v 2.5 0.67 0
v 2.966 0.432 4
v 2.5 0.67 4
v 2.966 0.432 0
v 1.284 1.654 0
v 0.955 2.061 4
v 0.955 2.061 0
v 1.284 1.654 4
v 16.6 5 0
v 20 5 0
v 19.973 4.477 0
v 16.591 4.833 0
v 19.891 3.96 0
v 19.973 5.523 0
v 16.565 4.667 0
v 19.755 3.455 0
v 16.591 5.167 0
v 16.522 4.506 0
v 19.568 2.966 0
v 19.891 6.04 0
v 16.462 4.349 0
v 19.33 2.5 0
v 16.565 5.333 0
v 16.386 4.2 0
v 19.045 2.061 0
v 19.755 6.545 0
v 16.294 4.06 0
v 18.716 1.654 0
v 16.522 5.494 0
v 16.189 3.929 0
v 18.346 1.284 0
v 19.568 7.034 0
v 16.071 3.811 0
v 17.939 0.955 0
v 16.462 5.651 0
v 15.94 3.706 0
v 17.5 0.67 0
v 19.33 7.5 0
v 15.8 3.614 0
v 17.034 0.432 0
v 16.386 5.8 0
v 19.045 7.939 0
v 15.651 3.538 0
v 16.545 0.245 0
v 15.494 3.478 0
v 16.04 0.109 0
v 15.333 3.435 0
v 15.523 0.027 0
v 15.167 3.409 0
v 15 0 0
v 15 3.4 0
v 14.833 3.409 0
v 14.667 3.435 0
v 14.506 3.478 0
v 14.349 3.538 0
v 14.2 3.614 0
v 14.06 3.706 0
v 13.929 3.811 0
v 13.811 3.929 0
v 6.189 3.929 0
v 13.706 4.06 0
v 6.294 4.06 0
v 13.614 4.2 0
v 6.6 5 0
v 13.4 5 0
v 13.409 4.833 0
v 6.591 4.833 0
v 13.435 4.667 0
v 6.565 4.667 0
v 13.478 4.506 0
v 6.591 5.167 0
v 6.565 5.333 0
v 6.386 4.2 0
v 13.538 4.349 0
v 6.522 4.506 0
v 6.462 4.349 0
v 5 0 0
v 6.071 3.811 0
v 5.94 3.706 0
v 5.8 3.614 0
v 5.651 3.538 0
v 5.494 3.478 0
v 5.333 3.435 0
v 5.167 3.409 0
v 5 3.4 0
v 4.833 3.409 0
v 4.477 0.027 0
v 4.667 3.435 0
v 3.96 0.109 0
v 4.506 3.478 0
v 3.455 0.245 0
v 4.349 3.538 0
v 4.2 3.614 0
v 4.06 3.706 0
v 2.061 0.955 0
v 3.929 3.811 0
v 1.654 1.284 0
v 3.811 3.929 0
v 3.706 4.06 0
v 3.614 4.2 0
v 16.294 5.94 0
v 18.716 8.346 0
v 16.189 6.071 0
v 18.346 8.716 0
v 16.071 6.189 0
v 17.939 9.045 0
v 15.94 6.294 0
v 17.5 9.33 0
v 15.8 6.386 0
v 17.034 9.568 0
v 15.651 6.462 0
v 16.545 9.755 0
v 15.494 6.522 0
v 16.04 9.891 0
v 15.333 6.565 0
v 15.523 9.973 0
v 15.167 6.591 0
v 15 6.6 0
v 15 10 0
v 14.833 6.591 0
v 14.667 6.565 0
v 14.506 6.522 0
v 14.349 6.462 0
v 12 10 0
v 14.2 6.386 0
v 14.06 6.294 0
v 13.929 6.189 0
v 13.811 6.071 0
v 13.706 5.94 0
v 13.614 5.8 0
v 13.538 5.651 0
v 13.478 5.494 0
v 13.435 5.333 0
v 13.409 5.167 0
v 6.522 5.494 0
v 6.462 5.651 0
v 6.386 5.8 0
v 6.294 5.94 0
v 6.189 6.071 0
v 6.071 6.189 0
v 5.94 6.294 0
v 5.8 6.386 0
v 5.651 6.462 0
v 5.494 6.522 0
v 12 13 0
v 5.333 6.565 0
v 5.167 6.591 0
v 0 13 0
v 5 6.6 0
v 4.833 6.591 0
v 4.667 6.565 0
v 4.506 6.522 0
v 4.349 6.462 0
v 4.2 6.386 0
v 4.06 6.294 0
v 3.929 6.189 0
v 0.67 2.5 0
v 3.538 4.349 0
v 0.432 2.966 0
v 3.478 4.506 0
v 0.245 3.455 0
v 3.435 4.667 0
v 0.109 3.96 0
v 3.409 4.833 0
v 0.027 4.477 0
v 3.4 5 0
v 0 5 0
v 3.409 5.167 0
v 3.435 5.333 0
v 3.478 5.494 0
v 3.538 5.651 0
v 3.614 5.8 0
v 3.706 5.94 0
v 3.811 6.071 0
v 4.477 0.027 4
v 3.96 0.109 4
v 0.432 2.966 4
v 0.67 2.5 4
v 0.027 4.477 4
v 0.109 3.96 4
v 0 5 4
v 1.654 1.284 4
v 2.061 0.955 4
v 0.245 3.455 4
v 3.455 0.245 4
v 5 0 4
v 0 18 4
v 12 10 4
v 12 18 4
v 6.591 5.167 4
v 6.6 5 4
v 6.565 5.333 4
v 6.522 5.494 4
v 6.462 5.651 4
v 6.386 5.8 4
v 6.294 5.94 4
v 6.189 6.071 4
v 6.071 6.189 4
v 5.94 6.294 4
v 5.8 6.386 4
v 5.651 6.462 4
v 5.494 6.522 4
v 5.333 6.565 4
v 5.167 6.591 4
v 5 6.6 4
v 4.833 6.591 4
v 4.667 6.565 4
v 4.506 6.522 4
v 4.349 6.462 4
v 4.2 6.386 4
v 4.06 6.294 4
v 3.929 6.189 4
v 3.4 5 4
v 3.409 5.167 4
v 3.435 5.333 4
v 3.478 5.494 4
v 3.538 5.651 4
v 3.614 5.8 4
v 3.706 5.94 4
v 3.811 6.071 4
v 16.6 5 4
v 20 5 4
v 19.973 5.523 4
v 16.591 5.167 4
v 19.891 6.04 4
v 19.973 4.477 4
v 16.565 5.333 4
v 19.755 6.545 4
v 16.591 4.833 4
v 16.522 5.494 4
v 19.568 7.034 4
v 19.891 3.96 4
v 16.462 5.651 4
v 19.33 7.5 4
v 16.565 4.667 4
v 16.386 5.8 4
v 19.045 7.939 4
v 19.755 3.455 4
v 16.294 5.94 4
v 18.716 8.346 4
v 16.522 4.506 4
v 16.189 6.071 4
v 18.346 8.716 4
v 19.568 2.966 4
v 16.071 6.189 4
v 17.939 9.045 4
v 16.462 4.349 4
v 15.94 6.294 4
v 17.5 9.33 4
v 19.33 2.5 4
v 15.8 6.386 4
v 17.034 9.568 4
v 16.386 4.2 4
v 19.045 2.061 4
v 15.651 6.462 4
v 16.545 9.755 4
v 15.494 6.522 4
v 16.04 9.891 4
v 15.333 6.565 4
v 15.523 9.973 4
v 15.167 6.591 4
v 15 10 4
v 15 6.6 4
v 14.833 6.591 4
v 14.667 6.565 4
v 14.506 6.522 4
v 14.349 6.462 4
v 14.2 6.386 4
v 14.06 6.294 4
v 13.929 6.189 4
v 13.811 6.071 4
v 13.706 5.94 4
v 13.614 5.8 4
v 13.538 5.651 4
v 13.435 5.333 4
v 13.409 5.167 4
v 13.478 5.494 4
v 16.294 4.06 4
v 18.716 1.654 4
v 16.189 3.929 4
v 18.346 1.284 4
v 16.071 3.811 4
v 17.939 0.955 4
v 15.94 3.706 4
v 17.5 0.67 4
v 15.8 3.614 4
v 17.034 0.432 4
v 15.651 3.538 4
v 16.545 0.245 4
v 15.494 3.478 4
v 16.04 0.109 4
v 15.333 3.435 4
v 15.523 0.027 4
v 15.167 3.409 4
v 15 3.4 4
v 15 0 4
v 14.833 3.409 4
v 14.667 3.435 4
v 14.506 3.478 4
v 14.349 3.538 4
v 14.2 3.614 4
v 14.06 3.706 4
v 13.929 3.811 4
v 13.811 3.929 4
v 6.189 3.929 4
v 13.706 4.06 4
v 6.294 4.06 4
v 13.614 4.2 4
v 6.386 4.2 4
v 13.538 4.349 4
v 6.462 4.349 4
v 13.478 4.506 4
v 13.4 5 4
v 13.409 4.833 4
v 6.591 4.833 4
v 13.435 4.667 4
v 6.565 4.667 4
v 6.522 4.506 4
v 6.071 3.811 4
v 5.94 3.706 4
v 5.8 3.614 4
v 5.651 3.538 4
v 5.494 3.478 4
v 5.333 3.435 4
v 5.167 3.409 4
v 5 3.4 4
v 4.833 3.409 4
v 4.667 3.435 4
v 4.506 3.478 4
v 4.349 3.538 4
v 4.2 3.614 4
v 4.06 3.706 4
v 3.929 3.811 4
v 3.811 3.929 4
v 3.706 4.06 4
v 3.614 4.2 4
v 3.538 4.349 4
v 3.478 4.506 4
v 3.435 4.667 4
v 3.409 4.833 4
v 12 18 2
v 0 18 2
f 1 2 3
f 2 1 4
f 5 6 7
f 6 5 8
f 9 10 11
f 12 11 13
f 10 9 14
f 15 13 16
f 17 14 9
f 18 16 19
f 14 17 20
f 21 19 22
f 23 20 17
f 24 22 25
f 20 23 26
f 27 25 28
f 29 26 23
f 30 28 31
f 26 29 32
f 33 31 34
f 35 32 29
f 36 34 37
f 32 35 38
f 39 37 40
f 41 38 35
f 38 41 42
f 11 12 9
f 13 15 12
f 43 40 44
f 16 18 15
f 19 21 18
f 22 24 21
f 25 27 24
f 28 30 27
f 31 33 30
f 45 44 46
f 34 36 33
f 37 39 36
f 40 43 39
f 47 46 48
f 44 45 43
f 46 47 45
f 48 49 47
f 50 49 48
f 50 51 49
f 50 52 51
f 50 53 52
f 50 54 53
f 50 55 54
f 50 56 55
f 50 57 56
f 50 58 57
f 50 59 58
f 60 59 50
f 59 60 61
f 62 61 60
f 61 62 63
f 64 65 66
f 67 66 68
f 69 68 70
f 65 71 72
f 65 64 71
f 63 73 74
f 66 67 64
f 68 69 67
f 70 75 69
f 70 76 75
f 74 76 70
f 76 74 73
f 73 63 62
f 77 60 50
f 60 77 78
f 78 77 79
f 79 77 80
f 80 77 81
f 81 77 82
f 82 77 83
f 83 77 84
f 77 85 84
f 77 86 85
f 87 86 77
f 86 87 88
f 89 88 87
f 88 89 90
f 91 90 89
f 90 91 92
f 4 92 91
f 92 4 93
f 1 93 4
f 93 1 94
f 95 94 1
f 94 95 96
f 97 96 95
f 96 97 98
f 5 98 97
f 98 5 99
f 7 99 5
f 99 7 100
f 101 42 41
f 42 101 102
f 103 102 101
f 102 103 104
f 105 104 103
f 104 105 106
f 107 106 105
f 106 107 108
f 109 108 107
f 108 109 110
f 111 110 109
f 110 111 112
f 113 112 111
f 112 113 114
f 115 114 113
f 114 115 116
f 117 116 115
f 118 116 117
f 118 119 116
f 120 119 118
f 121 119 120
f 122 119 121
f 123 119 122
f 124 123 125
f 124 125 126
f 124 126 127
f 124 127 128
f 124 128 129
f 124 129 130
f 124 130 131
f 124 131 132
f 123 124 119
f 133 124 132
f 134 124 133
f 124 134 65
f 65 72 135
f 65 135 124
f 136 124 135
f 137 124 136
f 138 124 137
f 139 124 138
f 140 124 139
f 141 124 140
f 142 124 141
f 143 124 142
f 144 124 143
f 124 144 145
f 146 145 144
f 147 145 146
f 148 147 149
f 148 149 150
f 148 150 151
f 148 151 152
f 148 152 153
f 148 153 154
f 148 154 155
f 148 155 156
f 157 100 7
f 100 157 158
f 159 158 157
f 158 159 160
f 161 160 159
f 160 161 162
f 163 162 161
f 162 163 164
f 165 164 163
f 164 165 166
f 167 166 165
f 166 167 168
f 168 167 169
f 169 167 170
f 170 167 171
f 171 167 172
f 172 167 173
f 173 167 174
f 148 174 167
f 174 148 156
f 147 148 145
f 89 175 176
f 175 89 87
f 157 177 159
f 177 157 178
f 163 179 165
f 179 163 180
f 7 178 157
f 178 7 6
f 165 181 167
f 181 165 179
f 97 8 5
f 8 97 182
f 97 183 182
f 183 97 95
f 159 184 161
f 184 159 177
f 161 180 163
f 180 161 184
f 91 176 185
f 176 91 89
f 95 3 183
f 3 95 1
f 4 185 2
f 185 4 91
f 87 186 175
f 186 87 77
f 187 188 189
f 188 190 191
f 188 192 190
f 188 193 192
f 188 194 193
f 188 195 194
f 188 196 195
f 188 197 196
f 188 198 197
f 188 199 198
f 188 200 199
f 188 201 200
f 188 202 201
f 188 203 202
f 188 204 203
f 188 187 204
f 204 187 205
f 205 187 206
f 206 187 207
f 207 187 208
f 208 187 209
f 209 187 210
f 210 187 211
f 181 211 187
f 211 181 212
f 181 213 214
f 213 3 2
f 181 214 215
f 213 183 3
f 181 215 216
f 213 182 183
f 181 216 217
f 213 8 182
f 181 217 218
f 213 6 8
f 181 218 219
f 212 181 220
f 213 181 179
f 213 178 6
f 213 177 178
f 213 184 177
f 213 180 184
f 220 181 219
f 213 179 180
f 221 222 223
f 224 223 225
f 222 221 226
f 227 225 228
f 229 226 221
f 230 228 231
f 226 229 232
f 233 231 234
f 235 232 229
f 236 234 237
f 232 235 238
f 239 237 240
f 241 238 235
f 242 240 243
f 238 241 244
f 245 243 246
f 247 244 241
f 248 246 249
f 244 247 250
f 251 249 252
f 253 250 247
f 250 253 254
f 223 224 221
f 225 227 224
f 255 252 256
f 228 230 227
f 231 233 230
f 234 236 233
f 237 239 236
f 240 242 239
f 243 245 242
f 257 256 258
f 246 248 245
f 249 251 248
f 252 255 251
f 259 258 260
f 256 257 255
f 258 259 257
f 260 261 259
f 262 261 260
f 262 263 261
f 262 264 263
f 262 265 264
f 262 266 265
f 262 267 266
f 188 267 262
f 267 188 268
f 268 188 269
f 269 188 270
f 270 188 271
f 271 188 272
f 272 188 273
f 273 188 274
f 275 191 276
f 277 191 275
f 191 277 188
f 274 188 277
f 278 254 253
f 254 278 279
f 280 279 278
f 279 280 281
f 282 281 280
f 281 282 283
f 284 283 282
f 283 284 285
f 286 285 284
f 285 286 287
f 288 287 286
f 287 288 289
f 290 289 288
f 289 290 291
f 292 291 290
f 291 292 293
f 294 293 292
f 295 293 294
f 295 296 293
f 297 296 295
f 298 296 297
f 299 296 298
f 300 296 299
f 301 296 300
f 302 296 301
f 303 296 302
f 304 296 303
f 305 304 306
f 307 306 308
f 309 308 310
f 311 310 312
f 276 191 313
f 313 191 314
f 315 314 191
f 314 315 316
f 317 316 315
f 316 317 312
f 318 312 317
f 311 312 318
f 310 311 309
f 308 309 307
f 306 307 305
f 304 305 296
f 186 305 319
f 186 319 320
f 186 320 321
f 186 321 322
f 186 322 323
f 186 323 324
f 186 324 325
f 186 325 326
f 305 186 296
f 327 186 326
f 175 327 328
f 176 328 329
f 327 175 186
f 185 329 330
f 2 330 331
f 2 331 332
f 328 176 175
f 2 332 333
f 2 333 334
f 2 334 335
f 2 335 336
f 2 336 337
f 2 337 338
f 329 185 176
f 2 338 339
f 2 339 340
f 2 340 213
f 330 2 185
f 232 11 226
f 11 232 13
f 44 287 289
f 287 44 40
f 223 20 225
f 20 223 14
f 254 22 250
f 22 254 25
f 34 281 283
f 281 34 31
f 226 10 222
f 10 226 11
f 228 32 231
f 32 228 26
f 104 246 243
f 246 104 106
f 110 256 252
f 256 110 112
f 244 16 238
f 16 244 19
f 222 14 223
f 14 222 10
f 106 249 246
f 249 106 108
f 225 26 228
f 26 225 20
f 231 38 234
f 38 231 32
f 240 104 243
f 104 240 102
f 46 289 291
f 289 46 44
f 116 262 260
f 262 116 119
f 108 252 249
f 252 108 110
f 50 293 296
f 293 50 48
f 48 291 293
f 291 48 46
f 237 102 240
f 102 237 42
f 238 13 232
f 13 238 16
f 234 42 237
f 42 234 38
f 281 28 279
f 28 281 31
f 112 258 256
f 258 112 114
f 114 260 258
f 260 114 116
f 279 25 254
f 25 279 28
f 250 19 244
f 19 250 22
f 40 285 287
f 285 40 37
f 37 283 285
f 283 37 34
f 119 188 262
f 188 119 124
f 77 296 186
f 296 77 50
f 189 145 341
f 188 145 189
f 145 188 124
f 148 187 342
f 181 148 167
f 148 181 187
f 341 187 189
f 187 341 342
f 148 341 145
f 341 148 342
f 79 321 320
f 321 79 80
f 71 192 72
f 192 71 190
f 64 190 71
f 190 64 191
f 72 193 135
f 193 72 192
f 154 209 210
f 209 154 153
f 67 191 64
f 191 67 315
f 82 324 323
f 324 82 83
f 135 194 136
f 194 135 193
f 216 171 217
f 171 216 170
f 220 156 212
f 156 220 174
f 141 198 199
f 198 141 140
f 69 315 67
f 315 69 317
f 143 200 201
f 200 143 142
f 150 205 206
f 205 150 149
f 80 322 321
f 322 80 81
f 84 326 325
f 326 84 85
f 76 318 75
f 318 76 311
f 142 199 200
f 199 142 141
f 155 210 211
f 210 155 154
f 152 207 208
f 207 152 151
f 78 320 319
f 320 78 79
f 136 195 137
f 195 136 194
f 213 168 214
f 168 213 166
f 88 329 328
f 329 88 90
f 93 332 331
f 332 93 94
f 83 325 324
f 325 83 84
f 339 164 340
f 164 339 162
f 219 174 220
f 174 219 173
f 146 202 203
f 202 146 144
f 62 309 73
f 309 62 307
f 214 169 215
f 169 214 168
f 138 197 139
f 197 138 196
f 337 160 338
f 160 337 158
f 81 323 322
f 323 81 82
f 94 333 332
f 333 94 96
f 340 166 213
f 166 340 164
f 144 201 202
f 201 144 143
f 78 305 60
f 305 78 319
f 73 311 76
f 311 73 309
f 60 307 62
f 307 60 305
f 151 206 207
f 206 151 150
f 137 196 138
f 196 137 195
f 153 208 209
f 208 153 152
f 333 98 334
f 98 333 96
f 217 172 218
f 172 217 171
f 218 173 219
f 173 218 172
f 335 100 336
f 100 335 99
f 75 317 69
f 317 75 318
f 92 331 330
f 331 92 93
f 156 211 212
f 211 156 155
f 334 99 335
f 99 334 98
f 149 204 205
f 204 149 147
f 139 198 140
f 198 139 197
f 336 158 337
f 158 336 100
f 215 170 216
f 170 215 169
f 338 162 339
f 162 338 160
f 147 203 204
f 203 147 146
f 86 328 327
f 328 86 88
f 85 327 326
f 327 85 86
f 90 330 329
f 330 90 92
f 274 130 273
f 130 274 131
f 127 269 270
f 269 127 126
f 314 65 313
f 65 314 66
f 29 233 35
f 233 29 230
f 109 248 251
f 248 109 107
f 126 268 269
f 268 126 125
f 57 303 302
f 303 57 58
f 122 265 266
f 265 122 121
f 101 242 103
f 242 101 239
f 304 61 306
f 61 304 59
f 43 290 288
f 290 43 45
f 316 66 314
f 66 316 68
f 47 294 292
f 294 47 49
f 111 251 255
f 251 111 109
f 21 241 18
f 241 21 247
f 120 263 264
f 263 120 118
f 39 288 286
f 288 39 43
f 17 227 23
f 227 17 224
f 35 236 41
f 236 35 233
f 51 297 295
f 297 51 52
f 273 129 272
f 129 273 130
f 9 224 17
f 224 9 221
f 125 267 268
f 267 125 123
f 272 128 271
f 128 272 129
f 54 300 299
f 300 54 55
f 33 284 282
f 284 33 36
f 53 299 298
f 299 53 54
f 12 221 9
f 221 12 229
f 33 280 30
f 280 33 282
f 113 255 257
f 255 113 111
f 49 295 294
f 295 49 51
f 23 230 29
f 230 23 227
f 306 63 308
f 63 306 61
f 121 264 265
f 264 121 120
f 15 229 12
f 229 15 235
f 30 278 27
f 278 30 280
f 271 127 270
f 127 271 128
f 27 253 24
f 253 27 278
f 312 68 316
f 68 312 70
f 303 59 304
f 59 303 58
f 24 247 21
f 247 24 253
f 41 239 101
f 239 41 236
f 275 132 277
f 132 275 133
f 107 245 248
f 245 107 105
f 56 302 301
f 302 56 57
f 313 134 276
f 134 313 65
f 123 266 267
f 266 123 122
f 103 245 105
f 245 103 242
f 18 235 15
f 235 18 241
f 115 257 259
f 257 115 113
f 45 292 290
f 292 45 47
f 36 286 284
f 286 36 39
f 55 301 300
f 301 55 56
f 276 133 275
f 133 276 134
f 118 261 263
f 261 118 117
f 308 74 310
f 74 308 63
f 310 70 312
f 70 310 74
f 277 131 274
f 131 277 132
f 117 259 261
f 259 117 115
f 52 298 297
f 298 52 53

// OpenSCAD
// file: modules.scad
/*
This is a collection of the modules which are used heavily within the whole project.
Almost all parts rely on the modules to remain "as is", especially regarding their current orientation.
So please act very carefully here, otherwise you may screw up the complete design!

*/

// roof module - this is heavily used for dovetail cutouts
// please keep as is
module roof(l, w, h){
    polyhedron(
        points=[
            [0,0,0],
            [l,0,0],
            [l,w,0],
            [0,w,0],
            [0,w/2,h],
            [l,w/2,h]
            ],
        faces=[
            [0,1,2,3],
            [0,4,1],
            [1,4,5,2],
            [2,5,3],
            [3,5,4,0]
            ]
            );
    };

// a wedge module - this is heavily used for cutting edges
// please keep as is    
module wedge(l, w, h) {
    polyhedron(
            points=[
                [0,0,0],
                [l,0,0],
                [l,w,0],
                [0,w,0],
                [0,0,h],
                [l,0,h]
            ],
            faces=[
                [0,3,2,1],
                [0,1,5,4],
                [1,2,5],
                [2,3,4,5],
                [3,0,4]
            ]
    );
   };

// simple tube module.   
module tube(d1, d2, h) {
    difference() {
        cylinder(d=d1, h=h);
        cylinder(d=d2, h=h);
        };
    };

// mainly used for making holes for countersunk screws
// please keep as is    
module countersunk_screw(vScrew_d, vScrew_l){
    union(){
    cylinder(d=vScrew_d, h= vScrew_l);
    cylinder(d1=vScrew_d*2, h=vScrew_d);
    };
};

// module for making hexagons, e.g. hex nuts. kw is the key width
// please keep as is
module hex(kw, h) {
	render()
        translate([0, 0, h/2])
            intersection_for(a = [0, 120, 240]) {
                rotate([0, 0, a])
                    cube([kw, 3 * kw, h], true);
                }
}
// main file
// some variables
$fn = 60; // we are using 60 fragments for cylinders and similar objects

// some modules such as hex, countersunk screws, roof, wedge are available in a module file
use <modules.scad>;


// variables

vTolerance = 0.2;


vLockingRailBaseRadius_r = 5;
vLockingRailBaseRadius_offsetX1 = vLockingRailBaseRadius_r;
vLockingRailBaseRadius_offsetX2 = vLockingRailBaseRadius_r+10;
vLockingRailBaseRadius_offsetY= vLockingRailBaseRadius_r;
vLockingRailBaseRadius_offsetZ = 0;

vLockingRailBaseBlock_l = 2*vLockingRailBaseRadius_r;
vLockingRailBaseBlock_w = 2*vLockingRailBaseRadius_r;
vLockingRailBaseBlock_h = 4;
vLockingRailBaseBlock_offsetX = vLockingRailBaseRadius_r;
vLockingRailBaseBlock_offsetY = 0;
vLockingRailBaseBlock_offsetZ = 0;

vLockingRailExtension_l = 12;
vLockingRailExtension_w = vLockingRailBaseRadius_r+8;
vLockingRailExtension_h = vLockingRailBaseBlock_h;
vLockingRailExtension_offsetX = 0;
vLockingRailExtension_offsetY = vLockingRailBaseRadius_r;
vLockingRailExtension_offsetZ = 0;

vLockingRailRampCutoff_l = 5;
vLockingRailRampCutoff_w = vLockingRailExtension_l;
vLockingRailRampCutoff_h = 2;
vLockingRailRampCutoff_offsetX = 0;
vLockingRailRampCutoff_offsetY = vLockingRailExtension_w+vLockingRailExtension_offsetY;
vLockingRailRampCutoff_offsetZ = 0;

vScrewHole_d = 3+vTolerance;
vScrewHole_h = vLockingRailBaseBlock_h;

/*
translate([vLockingRailRampCutoff_offsetX, vLockingRailRampCutoff_offsetY, vLockingRailRampCutoff_offsetZ])
wedge(vLockingRailRampCutoff_w, -vLockingRailRampCutoff_l, vLockingRailRampCutoff_h);
*/



difference(){
    union(){
    translate([vLockingRailBaseRadius_offsetX1, vLockingRailBaseRadius_offsetY, vLockingRailBaseRadius_offsetZ])
        cylinder(r = vLockingRailBaseRadius_r, h= vLockingRailBaseBlock_h);
    translate([vLockingRailBaseRadius_offsetX2, vLockingRailBaseRadius_offsetY, vLockingRailBaseRadius_offsetZ])
        cylinder(r = vLockingRailBaseRadius_r, h= vLockingRailBaseBlock_h);
    // base block
    translate([vLockingRailBaseBlock_offsetX, vLockingRailBaseBlock_offsetY, vLockingRailBaseBlock_offsetZ])
        cube([vLockingRailBaseBlock_l, vLockingRailBaseBlock_w, vLockingRailBaseBlock_h]);
    // extension block
    translate([vLockingRailExtension_offsetX, vLockingRailExtension_offsetY, vLockingRailExtension_offsetZ])
        cube([vLockingRailExtension_l, vLockingRailExtension_w, vLockingRailExtension_h]);
    };
    
    // cut off ramp
    translate([vLockingRailRampCutoff_offsetX, vLockingRailRampCutoff_offsetY, vLockingRailRampCutoff_offsetZ])
        wedge(vLockingRailRampCutoff_w, -vLockingRailRampCutoff_l, vLockingRailRampCutoff_h);
    
    // screw holes
    translate([vLockingRailBaseRadius_offsetX1, vLockingRailBaseRadius_offsetY, vLockingRailBaseRadius_offsetZ])
        cylinder(d=vScrewHole_d, h=vScrewHole_h);
    translate([vLockingRailBaseRadius_offsetX2, vLockingRailBaseRadius_offsetY, vLockingRailBaseRadius_offsetZ])
        cylinder(d=vScrewHole_d, h=vScrewHole_h);

};
